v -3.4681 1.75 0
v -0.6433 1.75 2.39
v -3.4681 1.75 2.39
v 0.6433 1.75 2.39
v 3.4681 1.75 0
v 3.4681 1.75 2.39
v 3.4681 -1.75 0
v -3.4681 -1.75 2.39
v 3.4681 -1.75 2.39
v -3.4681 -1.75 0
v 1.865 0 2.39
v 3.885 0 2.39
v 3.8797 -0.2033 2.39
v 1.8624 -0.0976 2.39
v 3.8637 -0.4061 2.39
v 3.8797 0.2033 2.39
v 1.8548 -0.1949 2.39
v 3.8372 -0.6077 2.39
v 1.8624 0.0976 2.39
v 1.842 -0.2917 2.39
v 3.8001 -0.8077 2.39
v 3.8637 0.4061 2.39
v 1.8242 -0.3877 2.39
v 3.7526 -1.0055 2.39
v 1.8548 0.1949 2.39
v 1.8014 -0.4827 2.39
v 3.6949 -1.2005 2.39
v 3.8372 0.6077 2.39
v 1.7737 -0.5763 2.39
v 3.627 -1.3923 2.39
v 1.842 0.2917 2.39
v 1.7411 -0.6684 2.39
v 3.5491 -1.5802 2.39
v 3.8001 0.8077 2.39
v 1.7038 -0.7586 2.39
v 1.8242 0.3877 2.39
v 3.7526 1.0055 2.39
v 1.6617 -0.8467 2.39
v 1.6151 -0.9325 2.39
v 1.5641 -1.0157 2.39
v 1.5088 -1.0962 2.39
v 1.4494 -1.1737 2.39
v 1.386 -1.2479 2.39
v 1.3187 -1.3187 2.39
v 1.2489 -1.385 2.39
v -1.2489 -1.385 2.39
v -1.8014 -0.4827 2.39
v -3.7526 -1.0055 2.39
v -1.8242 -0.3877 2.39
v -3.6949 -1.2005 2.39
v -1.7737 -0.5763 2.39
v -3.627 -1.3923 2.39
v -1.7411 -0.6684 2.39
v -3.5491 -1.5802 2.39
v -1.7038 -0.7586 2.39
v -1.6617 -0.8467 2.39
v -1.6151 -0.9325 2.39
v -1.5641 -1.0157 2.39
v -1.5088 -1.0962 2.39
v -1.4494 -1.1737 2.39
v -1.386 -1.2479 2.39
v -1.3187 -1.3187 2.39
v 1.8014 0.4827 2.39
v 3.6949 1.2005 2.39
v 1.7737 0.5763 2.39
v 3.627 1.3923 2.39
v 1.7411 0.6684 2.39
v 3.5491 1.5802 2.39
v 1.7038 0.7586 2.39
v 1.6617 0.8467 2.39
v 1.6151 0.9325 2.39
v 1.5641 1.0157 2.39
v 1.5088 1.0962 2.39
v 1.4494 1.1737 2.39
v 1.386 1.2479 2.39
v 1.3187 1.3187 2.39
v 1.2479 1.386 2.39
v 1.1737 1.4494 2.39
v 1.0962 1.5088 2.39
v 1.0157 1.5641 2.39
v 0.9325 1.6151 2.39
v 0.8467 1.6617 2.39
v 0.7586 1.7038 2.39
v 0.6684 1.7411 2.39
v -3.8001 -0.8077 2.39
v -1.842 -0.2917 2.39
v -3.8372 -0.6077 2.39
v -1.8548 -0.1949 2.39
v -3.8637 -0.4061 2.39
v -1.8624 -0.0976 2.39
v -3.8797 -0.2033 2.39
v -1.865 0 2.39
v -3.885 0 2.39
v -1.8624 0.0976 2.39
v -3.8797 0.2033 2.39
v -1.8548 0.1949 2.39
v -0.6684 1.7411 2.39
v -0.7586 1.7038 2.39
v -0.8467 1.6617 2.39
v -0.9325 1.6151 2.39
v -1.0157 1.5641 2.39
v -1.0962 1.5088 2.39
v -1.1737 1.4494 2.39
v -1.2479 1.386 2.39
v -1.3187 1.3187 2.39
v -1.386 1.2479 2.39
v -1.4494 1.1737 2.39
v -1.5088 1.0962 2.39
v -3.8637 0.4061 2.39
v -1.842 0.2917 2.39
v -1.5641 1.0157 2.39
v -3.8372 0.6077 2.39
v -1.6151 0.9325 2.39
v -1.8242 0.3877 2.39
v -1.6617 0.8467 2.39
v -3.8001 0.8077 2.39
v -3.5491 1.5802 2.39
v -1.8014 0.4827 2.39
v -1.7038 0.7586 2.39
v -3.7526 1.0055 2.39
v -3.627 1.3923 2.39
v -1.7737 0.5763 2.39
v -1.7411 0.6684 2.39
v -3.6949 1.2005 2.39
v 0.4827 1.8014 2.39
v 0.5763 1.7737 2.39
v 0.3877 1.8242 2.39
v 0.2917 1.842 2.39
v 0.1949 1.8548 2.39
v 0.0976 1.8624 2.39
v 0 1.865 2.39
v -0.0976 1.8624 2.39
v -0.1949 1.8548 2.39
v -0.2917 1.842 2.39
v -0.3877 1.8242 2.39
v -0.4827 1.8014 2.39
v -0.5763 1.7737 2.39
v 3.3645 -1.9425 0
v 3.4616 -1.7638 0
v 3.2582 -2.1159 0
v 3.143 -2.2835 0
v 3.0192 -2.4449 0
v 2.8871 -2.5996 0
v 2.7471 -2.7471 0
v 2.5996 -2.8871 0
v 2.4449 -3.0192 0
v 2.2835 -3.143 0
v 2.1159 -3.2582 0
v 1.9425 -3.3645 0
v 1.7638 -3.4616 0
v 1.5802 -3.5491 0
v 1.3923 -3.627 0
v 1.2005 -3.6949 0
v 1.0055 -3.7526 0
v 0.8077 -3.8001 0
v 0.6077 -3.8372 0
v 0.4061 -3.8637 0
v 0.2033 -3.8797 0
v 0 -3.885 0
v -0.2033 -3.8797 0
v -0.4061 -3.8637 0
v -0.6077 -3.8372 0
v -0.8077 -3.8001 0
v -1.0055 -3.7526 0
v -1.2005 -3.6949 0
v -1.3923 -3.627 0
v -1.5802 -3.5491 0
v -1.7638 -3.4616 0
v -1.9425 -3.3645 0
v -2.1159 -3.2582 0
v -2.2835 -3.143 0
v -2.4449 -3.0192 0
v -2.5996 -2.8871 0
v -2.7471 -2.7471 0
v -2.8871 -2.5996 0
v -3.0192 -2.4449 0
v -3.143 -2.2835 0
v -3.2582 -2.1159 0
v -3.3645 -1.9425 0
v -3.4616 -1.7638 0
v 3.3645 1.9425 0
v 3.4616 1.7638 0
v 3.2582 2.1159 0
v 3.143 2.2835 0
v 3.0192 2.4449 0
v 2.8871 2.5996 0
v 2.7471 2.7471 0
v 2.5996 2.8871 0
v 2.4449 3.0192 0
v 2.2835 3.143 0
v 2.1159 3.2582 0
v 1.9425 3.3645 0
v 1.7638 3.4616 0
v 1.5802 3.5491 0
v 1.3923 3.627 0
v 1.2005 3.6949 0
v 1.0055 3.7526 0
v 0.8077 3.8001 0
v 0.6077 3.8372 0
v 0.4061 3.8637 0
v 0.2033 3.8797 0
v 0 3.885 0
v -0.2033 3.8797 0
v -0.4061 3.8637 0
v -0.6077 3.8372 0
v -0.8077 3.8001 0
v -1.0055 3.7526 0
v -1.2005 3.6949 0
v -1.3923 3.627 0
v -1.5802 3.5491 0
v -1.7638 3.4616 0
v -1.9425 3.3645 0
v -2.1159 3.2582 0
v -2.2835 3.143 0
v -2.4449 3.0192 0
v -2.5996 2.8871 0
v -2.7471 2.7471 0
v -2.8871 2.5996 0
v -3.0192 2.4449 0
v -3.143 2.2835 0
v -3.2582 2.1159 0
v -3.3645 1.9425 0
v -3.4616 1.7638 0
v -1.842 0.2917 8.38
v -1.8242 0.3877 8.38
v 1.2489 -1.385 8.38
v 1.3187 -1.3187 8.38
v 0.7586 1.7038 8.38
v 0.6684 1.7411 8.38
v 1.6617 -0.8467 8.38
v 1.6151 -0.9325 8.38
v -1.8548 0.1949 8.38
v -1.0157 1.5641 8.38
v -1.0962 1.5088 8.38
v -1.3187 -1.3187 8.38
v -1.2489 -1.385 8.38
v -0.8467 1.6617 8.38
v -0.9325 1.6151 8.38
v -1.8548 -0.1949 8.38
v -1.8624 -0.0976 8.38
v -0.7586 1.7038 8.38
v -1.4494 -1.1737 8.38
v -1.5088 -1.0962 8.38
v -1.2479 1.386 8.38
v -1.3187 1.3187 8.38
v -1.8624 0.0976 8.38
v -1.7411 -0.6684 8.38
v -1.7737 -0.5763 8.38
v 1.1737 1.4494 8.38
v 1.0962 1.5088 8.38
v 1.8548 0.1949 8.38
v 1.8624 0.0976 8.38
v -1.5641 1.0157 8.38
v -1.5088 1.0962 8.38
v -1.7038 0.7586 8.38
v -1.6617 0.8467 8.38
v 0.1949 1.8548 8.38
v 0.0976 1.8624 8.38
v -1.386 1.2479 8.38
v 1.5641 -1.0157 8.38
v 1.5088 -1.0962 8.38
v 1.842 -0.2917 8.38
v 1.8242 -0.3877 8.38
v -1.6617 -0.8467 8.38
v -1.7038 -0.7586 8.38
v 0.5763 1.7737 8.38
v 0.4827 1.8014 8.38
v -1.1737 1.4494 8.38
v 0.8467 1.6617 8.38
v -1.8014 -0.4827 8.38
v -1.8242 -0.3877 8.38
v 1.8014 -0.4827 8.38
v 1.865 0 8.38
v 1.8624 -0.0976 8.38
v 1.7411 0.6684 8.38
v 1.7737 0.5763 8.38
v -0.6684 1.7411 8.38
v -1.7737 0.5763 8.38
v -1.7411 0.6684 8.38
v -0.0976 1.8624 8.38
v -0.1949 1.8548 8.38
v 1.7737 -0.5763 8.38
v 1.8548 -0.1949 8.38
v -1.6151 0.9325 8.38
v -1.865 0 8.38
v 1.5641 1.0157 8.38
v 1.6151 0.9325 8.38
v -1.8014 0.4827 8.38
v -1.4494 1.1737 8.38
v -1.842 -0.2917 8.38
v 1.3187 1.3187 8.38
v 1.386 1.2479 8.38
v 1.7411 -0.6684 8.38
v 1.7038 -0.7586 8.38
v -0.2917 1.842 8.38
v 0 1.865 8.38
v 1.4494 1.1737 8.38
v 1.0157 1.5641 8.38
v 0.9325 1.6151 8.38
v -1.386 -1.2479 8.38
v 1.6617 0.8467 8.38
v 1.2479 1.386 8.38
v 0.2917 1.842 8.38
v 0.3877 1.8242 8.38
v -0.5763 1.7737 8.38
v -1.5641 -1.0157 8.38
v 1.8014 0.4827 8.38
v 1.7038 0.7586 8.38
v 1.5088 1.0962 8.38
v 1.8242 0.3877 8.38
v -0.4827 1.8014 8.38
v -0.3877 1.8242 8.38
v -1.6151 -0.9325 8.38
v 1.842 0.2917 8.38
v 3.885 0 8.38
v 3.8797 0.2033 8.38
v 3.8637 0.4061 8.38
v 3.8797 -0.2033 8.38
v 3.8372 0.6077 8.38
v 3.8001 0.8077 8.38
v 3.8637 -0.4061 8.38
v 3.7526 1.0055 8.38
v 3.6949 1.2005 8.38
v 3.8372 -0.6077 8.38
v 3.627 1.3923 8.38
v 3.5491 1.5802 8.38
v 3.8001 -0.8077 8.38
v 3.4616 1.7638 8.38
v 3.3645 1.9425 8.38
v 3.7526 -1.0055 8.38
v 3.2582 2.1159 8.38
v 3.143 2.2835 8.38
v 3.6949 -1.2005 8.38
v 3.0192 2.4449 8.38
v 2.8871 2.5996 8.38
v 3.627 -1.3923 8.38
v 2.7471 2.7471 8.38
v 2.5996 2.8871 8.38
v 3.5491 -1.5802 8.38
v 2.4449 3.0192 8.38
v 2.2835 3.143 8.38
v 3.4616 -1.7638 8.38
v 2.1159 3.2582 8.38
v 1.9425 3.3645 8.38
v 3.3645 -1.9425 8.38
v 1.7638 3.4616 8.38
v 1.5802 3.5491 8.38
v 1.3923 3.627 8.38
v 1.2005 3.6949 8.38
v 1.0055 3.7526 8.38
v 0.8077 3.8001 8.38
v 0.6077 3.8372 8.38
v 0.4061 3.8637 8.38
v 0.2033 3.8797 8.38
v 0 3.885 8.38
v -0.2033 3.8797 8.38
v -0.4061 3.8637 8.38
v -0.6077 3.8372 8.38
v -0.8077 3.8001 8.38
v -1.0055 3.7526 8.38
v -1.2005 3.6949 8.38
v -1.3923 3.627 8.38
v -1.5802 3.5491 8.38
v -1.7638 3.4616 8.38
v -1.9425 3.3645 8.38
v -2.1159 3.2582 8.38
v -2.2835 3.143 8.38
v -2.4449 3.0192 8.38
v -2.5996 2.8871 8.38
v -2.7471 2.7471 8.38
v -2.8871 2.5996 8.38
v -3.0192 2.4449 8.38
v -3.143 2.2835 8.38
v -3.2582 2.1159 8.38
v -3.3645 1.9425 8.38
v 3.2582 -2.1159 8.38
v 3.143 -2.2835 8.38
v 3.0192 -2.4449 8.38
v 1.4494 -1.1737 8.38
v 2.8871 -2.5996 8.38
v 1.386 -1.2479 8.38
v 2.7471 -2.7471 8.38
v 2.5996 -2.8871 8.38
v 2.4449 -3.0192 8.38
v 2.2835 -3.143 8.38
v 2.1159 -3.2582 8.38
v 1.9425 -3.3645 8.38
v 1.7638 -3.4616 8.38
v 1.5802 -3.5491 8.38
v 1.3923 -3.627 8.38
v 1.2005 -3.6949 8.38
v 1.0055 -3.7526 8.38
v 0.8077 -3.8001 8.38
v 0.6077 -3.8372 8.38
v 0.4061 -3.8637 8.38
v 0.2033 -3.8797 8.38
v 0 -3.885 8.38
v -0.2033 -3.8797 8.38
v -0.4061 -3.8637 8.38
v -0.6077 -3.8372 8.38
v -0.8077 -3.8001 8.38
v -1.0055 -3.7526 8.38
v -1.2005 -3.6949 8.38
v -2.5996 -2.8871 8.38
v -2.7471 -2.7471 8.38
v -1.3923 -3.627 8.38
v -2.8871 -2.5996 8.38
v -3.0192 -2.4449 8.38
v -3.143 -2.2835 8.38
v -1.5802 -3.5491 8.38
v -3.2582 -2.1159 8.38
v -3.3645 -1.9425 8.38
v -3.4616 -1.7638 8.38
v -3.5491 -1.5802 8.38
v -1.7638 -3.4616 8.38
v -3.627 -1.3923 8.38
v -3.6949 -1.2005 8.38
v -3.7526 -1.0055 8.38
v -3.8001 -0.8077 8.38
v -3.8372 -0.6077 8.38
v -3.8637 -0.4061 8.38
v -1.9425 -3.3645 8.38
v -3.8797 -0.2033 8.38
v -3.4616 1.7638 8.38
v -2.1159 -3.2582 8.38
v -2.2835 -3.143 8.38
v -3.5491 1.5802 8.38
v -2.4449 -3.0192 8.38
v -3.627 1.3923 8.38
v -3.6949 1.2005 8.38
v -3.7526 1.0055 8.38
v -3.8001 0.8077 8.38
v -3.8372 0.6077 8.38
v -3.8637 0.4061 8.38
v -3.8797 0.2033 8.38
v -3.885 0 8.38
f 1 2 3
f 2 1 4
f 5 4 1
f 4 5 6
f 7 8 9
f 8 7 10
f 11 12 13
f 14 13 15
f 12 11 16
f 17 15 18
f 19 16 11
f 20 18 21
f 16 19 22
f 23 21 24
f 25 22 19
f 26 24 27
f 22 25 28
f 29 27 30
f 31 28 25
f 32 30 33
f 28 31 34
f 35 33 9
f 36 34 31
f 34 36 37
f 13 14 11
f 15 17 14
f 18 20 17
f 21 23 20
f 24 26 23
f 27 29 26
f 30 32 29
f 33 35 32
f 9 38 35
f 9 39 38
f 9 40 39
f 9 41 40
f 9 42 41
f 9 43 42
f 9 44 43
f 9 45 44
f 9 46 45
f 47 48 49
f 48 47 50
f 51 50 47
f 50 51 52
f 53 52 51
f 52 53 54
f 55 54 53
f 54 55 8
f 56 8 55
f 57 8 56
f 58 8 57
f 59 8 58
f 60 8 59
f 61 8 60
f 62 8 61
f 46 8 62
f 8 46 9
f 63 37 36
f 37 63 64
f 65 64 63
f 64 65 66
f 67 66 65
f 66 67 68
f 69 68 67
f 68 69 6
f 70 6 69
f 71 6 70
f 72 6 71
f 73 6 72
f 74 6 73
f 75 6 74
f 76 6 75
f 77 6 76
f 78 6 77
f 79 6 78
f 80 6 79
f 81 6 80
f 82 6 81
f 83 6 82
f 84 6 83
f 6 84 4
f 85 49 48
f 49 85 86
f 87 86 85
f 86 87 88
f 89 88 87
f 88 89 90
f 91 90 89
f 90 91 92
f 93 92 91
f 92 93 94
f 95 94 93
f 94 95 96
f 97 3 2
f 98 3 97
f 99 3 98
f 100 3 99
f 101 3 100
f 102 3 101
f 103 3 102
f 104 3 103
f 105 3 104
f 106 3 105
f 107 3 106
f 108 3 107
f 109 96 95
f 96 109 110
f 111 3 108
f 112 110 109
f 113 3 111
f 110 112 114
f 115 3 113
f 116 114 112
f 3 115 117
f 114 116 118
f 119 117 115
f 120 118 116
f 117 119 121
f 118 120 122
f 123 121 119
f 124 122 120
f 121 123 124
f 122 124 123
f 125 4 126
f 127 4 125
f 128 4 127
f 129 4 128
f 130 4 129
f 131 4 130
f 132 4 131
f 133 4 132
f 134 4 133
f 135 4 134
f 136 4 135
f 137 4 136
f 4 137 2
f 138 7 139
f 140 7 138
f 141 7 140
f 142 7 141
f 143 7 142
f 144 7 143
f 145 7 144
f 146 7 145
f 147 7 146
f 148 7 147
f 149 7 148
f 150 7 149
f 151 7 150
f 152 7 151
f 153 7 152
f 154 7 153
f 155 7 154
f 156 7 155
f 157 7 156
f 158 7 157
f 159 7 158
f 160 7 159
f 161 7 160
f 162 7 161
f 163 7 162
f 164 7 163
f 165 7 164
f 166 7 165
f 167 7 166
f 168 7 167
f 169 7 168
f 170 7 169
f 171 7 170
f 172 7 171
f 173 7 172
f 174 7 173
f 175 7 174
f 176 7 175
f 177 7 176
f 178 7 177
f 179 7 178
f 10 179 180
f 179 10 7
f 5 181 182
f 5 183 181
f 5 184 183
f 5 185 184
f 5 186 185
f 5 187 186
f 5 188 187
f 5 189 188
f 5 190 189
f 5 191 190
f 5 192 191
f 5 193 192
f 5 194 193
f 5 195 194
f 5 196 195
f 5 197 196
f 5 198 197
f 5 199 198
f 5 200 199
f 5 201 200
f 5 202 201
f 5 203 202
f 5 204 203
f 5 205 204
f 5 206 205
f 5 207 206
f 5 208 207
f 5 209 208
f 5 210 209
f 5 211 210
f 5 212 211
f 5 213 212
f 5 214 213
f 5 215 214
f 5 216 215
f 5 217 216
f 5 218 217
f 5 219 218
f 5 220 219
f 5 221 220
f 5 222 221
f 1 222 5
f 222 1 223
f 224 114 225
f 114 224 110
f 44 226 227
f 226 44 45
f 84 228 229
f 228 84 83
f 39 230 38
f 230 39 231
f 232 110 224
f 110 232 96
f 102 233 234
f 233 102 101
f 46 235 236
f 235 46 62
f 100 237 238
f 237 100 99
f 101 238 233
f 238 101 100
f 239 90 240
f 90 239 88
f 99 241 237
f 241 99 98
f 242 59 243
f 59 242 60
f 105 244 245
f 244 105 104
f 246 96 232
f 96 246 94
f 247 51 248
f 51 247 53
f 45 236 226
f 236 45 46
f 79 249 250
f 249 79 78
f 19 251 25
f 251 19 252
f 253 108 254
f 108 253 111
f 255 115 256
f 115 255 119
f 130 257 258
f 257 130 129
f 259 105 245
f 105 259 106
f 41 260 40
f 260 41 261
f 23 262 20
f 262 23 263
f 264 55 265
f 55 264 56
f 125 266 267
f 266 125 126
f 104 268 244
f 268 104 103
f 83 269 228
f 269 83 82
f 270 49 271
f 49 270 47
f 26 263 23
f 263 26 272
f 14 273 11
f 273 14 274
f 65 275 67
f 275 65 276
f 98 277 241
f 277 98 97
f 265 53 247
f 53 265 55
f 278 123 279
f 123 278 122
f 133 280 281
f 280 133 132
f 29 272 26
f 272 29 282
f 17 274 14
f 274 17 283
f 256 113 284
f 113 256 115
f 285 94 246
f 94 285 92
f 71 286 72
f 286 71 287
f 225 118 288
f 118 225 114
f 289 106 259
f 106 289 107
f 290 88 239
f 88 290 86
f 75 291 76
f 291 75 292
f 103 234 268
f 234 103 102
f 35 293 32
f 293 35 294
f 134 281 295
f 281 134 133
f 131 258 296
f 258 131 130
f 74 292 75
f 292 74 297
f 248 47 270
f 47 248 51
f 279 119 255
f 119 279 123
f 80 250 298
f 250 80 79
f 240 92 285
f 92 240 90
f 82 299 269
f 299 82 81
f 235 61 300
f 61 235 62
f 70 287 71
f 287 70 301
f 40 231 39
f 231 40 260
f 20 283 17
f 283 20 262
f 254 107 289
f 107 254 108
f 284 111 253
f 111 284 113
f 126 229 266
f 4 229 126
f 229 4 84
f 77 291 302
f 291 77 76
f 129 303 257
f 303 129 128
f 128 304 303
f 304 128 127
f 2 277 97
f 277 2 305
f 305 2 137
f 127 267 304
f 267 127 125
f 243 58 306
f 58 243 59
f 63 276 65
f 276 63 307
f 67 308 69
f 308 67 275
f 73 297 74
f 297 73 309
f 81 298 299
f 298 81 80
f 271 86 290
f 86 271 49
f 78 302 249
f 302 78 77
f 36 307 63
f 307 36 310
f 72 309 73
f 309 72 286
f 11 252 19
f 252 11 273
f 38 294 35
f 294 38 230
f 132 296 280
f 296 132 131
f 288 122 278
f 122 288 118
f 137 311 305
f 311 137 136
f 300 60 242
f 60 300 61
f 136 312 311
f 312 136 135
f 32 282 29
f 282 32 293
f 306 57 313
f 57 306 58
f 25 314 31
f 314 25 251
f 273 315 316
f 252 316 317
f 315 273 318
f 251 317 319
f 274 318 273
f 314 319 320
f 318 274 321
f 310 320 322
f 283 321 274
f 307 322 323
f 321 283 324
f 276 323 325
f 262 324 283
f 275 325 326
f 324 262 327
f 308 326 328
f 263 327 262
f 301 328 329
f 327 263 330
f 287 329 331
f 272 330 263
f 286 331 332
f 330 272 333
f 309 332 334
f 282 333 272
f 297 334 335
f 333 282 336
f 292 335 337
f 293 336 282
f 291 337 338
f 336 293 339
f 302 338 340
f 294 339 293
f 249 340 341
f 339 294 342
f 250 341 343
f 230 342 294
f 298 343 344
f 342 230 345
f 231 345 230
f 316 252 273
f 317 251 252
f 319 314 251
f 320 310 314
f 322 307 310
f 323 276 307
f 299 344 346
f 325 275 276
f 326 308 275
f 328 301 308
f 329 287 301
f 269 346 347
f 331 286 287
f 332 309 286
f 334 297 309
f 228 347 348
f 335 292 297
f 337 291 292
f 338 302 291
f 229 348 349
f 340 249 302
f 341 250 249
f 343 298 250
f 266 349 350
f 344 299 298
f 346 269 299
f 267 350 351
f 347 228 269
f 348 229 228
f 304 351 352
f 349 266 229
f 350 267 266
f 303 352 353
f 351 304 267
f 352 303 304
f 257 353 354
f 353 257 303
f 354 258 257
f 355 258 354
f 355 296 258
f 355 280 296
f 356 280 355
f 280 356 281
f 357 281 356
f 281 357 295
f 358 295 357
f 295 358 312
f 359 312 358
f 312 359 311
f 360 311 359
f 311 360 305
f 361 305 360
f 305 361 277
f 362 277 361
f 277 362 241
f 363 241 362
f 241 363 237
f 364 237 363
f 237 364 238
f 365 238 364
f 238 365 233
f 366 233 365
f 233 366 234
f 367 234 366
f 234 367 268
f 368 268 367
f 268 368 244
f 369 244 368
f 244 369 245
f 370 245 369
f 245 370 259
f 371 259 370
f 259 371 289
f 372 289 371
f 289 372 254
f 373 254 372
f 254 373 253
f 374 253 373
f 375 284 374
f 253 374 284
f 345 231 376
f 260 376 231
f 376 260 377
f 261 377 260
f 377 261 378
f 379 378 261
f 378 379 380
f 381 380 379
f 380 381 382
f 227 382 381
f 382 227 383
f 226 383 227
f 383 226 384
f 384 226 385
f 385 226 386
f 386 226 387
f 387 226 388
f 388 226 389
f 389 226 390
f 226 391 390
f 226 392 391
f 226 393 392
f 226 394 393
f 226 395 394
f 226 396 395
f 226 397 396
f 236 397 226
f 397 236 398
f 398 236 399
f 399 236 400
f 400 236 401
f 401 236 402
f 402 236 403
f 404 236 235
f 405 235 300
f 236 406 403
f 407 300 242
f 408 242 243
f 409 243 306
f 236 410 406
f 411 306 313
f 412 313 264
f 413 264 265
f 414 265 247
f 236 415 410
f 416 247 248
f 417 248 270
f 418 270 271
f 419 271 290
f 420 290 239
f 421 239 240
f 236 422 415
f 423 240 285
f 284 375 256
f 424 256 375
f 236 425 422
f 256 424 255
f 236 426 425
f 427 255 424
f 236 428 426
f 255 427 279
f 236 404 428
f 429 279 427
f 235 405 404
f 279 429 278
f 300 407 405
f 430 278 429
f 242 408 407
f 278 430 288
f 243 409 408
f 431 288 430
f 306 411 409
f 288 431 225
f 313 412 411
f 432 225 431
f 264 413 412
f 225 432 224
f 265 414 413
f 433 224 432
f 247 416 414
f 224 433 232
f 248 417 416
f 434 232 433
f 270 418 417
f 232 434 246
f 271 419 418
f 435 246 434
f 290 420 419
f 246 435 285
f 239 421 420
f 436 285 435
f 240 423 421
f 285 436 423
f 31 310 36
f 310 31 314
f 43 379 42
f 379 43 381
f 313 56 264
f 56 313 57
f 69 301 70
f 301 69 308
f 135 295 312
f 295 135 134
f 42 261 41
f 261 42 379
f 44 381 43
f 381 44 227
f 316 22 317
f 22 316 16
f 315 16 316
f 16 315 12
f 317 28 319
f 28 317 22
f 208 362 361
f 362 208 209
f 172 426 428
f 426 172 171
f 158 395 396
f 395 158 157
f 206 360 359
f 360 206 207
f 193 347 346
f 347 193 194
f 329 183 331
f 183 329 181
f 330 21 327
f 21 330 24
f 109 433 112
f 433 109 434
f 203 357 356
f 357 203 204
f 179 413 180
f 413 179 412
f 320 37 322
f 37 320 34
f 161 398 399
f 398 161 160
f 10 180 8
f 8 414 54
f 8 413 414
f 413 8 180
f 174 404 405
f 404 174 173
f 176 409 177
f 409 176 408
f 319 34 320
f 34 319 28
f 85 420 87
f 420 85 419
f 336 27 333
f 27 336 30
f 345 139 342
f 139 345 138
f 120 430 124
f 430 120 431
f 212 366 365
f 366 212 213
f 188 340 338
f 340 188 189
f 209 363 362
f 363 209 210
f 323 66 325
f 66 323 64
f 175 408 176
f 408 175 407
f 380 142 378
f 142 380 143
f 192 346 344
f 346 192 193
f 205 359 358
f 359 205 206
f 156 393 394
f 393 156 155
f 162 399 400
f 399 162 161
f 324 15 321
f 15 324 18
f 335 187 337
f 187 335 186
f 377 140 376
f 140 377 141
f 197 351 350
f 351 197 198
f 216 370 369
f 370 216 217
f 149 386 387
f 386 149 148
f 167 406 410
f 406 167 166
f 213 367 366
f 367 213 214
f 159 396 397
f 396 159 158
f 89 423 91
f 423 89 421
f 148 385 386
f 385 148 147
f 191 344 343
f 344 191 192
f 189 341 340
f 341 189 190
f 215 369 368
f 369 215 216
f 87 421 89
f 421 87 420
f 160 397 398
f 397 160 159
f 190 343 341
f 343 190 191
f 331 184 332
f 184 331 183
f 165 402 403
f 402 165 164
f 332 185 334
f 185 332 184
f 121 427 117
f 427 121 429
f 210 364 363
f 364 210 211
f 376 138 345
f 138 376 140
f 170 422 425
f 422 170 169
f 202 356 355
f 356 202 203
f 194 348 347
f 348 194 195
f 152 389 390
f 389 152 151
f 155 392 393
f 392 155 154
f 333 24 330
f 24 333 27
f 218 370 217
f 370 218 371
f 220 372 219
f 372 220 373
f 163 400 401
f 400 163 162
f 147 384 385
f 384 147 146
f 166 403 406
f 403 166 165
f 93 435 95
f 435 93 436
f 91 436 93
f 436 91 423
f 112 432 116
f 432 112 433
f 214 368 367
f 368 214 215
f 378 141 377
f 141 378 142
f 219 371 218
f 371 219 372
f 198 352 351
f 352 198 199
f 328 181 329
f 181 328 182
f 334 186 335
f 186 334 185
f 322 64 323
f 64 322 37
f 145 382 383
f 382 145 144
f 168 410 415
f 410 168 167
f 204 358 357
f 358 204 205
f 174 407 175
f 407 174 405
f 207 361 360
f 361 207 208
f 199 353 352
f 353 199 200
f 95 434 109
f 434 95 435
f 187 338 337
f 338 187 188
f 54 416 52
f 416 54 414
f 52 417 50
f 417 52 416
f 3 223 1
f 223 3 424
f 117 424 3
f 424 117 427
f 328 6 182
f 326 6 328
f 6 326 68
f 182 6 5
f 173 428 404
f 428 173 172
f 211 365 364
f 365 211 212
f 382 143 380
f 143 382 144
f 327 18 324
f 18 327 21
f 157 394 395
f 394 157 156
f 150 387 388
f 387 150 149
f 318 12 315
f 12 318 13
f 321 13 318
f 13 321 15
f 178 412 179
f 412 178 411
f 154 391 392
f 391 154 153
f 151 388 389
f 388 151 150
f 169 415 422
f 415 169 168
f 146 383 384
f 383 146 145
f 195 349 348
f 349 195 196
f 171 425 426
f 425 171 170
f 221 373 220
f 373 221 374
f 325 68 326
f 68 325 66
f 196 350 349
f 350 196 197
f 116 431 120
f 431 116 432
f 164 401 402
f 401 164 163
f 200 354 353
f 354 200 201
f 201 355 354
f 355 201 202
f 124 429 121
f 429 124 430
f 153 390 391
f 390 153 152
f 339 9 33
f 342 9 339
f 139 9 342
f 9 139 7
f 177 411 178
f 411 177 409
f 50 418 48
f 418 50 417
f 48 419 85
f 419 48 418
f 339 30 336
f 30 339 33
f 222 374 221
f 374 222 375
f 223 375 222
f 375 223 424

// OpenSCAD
// file: motor-pin-pos.scad
$fn = 120;

pin_tol = 0.6;
block_tol = 0.5;

pin_raw_diam = 3.13; //2.65
pin_inset = 0.48;
pin_depth = 5.99;
tab_offset = 0.5;

block_raw_height = 3;
base_cylinder_diam = 7.87; // Also block len

block_depth = 2.39;

pin_diam = pin_raw_diam + pin_tol;
block_height = block_raw_height + block_tol;

module block_sketch() {
    difference() {
        circle(d=base_cylinder_diam);

        square_height = (base_cylinder_diam - block_height)/2;
        translate([-base_cylinder_diam/2, block_height/2, 0])
        square([base_cylinder_diam, square_height]);

        translate([-base_cylinder_diam/2, -square_height-block_height/2, 0])
        square([base_cylinder_diam, square_height]);
    }
}

module pin_sketch() {

    difference() {
        circle(d=pin_diam);

        translate([-pin_diam/2, -pin_diam*3/2+pin_inset])
        square(pin_diam);
    }
}

module block() {
    linear_extrude(block_depth)
    block_sketch();
}

module pin() {
    linear_extrude(pin_depth)
    pin_sketch();
}

module motor_pin_pos() {
    union() {
        block();
        translate([0, 0, block_depth])
        pin();
    }
}
// main file
include <motor-pin-pos.scad>

insert_tol = -0.3;

square_side_raw = 3.16;

cyl_depth = pin_depth + block_depth;

fan_insert_depth = 8;
square_side = square_side_raw + insert_tol;
hull_offset = 5;

cyl_diam = base_cylinder_diam - 0.1;

module block_base_sketch() {
    circle(d = cyl_diam);

    xTrans = cyl_diam - (cyl_diam/2 - block_height);
    translate([xTrans, 0, 0])
    square(cyl_diam, true);
}

module motor_pin_neg() {
    difference() {
        cylinder(d = cyl_diam, h = cyl_depth);
        motor_pin_pos();
    }
}

module fan_insert_block() {
    translate([0, 0, pin_depth + block_depth + hull_offset])
    linear_extrude(fan_insert_depth)
    translate([-square_side/2, -square_side/2])
    square(square_side);
}

module neg_insert_connector() {
    hull() {
        translate([-square_side/2, -square_side/2])
        
        translate([0, 0, hull_offset])
        linear_extrude(1)
        square(square_side);

        linear_extrude(1)
        circle(d=cyl_diam);
    }
}

motor_pin_neg();
#block_base_sketch();
block_sketch();
